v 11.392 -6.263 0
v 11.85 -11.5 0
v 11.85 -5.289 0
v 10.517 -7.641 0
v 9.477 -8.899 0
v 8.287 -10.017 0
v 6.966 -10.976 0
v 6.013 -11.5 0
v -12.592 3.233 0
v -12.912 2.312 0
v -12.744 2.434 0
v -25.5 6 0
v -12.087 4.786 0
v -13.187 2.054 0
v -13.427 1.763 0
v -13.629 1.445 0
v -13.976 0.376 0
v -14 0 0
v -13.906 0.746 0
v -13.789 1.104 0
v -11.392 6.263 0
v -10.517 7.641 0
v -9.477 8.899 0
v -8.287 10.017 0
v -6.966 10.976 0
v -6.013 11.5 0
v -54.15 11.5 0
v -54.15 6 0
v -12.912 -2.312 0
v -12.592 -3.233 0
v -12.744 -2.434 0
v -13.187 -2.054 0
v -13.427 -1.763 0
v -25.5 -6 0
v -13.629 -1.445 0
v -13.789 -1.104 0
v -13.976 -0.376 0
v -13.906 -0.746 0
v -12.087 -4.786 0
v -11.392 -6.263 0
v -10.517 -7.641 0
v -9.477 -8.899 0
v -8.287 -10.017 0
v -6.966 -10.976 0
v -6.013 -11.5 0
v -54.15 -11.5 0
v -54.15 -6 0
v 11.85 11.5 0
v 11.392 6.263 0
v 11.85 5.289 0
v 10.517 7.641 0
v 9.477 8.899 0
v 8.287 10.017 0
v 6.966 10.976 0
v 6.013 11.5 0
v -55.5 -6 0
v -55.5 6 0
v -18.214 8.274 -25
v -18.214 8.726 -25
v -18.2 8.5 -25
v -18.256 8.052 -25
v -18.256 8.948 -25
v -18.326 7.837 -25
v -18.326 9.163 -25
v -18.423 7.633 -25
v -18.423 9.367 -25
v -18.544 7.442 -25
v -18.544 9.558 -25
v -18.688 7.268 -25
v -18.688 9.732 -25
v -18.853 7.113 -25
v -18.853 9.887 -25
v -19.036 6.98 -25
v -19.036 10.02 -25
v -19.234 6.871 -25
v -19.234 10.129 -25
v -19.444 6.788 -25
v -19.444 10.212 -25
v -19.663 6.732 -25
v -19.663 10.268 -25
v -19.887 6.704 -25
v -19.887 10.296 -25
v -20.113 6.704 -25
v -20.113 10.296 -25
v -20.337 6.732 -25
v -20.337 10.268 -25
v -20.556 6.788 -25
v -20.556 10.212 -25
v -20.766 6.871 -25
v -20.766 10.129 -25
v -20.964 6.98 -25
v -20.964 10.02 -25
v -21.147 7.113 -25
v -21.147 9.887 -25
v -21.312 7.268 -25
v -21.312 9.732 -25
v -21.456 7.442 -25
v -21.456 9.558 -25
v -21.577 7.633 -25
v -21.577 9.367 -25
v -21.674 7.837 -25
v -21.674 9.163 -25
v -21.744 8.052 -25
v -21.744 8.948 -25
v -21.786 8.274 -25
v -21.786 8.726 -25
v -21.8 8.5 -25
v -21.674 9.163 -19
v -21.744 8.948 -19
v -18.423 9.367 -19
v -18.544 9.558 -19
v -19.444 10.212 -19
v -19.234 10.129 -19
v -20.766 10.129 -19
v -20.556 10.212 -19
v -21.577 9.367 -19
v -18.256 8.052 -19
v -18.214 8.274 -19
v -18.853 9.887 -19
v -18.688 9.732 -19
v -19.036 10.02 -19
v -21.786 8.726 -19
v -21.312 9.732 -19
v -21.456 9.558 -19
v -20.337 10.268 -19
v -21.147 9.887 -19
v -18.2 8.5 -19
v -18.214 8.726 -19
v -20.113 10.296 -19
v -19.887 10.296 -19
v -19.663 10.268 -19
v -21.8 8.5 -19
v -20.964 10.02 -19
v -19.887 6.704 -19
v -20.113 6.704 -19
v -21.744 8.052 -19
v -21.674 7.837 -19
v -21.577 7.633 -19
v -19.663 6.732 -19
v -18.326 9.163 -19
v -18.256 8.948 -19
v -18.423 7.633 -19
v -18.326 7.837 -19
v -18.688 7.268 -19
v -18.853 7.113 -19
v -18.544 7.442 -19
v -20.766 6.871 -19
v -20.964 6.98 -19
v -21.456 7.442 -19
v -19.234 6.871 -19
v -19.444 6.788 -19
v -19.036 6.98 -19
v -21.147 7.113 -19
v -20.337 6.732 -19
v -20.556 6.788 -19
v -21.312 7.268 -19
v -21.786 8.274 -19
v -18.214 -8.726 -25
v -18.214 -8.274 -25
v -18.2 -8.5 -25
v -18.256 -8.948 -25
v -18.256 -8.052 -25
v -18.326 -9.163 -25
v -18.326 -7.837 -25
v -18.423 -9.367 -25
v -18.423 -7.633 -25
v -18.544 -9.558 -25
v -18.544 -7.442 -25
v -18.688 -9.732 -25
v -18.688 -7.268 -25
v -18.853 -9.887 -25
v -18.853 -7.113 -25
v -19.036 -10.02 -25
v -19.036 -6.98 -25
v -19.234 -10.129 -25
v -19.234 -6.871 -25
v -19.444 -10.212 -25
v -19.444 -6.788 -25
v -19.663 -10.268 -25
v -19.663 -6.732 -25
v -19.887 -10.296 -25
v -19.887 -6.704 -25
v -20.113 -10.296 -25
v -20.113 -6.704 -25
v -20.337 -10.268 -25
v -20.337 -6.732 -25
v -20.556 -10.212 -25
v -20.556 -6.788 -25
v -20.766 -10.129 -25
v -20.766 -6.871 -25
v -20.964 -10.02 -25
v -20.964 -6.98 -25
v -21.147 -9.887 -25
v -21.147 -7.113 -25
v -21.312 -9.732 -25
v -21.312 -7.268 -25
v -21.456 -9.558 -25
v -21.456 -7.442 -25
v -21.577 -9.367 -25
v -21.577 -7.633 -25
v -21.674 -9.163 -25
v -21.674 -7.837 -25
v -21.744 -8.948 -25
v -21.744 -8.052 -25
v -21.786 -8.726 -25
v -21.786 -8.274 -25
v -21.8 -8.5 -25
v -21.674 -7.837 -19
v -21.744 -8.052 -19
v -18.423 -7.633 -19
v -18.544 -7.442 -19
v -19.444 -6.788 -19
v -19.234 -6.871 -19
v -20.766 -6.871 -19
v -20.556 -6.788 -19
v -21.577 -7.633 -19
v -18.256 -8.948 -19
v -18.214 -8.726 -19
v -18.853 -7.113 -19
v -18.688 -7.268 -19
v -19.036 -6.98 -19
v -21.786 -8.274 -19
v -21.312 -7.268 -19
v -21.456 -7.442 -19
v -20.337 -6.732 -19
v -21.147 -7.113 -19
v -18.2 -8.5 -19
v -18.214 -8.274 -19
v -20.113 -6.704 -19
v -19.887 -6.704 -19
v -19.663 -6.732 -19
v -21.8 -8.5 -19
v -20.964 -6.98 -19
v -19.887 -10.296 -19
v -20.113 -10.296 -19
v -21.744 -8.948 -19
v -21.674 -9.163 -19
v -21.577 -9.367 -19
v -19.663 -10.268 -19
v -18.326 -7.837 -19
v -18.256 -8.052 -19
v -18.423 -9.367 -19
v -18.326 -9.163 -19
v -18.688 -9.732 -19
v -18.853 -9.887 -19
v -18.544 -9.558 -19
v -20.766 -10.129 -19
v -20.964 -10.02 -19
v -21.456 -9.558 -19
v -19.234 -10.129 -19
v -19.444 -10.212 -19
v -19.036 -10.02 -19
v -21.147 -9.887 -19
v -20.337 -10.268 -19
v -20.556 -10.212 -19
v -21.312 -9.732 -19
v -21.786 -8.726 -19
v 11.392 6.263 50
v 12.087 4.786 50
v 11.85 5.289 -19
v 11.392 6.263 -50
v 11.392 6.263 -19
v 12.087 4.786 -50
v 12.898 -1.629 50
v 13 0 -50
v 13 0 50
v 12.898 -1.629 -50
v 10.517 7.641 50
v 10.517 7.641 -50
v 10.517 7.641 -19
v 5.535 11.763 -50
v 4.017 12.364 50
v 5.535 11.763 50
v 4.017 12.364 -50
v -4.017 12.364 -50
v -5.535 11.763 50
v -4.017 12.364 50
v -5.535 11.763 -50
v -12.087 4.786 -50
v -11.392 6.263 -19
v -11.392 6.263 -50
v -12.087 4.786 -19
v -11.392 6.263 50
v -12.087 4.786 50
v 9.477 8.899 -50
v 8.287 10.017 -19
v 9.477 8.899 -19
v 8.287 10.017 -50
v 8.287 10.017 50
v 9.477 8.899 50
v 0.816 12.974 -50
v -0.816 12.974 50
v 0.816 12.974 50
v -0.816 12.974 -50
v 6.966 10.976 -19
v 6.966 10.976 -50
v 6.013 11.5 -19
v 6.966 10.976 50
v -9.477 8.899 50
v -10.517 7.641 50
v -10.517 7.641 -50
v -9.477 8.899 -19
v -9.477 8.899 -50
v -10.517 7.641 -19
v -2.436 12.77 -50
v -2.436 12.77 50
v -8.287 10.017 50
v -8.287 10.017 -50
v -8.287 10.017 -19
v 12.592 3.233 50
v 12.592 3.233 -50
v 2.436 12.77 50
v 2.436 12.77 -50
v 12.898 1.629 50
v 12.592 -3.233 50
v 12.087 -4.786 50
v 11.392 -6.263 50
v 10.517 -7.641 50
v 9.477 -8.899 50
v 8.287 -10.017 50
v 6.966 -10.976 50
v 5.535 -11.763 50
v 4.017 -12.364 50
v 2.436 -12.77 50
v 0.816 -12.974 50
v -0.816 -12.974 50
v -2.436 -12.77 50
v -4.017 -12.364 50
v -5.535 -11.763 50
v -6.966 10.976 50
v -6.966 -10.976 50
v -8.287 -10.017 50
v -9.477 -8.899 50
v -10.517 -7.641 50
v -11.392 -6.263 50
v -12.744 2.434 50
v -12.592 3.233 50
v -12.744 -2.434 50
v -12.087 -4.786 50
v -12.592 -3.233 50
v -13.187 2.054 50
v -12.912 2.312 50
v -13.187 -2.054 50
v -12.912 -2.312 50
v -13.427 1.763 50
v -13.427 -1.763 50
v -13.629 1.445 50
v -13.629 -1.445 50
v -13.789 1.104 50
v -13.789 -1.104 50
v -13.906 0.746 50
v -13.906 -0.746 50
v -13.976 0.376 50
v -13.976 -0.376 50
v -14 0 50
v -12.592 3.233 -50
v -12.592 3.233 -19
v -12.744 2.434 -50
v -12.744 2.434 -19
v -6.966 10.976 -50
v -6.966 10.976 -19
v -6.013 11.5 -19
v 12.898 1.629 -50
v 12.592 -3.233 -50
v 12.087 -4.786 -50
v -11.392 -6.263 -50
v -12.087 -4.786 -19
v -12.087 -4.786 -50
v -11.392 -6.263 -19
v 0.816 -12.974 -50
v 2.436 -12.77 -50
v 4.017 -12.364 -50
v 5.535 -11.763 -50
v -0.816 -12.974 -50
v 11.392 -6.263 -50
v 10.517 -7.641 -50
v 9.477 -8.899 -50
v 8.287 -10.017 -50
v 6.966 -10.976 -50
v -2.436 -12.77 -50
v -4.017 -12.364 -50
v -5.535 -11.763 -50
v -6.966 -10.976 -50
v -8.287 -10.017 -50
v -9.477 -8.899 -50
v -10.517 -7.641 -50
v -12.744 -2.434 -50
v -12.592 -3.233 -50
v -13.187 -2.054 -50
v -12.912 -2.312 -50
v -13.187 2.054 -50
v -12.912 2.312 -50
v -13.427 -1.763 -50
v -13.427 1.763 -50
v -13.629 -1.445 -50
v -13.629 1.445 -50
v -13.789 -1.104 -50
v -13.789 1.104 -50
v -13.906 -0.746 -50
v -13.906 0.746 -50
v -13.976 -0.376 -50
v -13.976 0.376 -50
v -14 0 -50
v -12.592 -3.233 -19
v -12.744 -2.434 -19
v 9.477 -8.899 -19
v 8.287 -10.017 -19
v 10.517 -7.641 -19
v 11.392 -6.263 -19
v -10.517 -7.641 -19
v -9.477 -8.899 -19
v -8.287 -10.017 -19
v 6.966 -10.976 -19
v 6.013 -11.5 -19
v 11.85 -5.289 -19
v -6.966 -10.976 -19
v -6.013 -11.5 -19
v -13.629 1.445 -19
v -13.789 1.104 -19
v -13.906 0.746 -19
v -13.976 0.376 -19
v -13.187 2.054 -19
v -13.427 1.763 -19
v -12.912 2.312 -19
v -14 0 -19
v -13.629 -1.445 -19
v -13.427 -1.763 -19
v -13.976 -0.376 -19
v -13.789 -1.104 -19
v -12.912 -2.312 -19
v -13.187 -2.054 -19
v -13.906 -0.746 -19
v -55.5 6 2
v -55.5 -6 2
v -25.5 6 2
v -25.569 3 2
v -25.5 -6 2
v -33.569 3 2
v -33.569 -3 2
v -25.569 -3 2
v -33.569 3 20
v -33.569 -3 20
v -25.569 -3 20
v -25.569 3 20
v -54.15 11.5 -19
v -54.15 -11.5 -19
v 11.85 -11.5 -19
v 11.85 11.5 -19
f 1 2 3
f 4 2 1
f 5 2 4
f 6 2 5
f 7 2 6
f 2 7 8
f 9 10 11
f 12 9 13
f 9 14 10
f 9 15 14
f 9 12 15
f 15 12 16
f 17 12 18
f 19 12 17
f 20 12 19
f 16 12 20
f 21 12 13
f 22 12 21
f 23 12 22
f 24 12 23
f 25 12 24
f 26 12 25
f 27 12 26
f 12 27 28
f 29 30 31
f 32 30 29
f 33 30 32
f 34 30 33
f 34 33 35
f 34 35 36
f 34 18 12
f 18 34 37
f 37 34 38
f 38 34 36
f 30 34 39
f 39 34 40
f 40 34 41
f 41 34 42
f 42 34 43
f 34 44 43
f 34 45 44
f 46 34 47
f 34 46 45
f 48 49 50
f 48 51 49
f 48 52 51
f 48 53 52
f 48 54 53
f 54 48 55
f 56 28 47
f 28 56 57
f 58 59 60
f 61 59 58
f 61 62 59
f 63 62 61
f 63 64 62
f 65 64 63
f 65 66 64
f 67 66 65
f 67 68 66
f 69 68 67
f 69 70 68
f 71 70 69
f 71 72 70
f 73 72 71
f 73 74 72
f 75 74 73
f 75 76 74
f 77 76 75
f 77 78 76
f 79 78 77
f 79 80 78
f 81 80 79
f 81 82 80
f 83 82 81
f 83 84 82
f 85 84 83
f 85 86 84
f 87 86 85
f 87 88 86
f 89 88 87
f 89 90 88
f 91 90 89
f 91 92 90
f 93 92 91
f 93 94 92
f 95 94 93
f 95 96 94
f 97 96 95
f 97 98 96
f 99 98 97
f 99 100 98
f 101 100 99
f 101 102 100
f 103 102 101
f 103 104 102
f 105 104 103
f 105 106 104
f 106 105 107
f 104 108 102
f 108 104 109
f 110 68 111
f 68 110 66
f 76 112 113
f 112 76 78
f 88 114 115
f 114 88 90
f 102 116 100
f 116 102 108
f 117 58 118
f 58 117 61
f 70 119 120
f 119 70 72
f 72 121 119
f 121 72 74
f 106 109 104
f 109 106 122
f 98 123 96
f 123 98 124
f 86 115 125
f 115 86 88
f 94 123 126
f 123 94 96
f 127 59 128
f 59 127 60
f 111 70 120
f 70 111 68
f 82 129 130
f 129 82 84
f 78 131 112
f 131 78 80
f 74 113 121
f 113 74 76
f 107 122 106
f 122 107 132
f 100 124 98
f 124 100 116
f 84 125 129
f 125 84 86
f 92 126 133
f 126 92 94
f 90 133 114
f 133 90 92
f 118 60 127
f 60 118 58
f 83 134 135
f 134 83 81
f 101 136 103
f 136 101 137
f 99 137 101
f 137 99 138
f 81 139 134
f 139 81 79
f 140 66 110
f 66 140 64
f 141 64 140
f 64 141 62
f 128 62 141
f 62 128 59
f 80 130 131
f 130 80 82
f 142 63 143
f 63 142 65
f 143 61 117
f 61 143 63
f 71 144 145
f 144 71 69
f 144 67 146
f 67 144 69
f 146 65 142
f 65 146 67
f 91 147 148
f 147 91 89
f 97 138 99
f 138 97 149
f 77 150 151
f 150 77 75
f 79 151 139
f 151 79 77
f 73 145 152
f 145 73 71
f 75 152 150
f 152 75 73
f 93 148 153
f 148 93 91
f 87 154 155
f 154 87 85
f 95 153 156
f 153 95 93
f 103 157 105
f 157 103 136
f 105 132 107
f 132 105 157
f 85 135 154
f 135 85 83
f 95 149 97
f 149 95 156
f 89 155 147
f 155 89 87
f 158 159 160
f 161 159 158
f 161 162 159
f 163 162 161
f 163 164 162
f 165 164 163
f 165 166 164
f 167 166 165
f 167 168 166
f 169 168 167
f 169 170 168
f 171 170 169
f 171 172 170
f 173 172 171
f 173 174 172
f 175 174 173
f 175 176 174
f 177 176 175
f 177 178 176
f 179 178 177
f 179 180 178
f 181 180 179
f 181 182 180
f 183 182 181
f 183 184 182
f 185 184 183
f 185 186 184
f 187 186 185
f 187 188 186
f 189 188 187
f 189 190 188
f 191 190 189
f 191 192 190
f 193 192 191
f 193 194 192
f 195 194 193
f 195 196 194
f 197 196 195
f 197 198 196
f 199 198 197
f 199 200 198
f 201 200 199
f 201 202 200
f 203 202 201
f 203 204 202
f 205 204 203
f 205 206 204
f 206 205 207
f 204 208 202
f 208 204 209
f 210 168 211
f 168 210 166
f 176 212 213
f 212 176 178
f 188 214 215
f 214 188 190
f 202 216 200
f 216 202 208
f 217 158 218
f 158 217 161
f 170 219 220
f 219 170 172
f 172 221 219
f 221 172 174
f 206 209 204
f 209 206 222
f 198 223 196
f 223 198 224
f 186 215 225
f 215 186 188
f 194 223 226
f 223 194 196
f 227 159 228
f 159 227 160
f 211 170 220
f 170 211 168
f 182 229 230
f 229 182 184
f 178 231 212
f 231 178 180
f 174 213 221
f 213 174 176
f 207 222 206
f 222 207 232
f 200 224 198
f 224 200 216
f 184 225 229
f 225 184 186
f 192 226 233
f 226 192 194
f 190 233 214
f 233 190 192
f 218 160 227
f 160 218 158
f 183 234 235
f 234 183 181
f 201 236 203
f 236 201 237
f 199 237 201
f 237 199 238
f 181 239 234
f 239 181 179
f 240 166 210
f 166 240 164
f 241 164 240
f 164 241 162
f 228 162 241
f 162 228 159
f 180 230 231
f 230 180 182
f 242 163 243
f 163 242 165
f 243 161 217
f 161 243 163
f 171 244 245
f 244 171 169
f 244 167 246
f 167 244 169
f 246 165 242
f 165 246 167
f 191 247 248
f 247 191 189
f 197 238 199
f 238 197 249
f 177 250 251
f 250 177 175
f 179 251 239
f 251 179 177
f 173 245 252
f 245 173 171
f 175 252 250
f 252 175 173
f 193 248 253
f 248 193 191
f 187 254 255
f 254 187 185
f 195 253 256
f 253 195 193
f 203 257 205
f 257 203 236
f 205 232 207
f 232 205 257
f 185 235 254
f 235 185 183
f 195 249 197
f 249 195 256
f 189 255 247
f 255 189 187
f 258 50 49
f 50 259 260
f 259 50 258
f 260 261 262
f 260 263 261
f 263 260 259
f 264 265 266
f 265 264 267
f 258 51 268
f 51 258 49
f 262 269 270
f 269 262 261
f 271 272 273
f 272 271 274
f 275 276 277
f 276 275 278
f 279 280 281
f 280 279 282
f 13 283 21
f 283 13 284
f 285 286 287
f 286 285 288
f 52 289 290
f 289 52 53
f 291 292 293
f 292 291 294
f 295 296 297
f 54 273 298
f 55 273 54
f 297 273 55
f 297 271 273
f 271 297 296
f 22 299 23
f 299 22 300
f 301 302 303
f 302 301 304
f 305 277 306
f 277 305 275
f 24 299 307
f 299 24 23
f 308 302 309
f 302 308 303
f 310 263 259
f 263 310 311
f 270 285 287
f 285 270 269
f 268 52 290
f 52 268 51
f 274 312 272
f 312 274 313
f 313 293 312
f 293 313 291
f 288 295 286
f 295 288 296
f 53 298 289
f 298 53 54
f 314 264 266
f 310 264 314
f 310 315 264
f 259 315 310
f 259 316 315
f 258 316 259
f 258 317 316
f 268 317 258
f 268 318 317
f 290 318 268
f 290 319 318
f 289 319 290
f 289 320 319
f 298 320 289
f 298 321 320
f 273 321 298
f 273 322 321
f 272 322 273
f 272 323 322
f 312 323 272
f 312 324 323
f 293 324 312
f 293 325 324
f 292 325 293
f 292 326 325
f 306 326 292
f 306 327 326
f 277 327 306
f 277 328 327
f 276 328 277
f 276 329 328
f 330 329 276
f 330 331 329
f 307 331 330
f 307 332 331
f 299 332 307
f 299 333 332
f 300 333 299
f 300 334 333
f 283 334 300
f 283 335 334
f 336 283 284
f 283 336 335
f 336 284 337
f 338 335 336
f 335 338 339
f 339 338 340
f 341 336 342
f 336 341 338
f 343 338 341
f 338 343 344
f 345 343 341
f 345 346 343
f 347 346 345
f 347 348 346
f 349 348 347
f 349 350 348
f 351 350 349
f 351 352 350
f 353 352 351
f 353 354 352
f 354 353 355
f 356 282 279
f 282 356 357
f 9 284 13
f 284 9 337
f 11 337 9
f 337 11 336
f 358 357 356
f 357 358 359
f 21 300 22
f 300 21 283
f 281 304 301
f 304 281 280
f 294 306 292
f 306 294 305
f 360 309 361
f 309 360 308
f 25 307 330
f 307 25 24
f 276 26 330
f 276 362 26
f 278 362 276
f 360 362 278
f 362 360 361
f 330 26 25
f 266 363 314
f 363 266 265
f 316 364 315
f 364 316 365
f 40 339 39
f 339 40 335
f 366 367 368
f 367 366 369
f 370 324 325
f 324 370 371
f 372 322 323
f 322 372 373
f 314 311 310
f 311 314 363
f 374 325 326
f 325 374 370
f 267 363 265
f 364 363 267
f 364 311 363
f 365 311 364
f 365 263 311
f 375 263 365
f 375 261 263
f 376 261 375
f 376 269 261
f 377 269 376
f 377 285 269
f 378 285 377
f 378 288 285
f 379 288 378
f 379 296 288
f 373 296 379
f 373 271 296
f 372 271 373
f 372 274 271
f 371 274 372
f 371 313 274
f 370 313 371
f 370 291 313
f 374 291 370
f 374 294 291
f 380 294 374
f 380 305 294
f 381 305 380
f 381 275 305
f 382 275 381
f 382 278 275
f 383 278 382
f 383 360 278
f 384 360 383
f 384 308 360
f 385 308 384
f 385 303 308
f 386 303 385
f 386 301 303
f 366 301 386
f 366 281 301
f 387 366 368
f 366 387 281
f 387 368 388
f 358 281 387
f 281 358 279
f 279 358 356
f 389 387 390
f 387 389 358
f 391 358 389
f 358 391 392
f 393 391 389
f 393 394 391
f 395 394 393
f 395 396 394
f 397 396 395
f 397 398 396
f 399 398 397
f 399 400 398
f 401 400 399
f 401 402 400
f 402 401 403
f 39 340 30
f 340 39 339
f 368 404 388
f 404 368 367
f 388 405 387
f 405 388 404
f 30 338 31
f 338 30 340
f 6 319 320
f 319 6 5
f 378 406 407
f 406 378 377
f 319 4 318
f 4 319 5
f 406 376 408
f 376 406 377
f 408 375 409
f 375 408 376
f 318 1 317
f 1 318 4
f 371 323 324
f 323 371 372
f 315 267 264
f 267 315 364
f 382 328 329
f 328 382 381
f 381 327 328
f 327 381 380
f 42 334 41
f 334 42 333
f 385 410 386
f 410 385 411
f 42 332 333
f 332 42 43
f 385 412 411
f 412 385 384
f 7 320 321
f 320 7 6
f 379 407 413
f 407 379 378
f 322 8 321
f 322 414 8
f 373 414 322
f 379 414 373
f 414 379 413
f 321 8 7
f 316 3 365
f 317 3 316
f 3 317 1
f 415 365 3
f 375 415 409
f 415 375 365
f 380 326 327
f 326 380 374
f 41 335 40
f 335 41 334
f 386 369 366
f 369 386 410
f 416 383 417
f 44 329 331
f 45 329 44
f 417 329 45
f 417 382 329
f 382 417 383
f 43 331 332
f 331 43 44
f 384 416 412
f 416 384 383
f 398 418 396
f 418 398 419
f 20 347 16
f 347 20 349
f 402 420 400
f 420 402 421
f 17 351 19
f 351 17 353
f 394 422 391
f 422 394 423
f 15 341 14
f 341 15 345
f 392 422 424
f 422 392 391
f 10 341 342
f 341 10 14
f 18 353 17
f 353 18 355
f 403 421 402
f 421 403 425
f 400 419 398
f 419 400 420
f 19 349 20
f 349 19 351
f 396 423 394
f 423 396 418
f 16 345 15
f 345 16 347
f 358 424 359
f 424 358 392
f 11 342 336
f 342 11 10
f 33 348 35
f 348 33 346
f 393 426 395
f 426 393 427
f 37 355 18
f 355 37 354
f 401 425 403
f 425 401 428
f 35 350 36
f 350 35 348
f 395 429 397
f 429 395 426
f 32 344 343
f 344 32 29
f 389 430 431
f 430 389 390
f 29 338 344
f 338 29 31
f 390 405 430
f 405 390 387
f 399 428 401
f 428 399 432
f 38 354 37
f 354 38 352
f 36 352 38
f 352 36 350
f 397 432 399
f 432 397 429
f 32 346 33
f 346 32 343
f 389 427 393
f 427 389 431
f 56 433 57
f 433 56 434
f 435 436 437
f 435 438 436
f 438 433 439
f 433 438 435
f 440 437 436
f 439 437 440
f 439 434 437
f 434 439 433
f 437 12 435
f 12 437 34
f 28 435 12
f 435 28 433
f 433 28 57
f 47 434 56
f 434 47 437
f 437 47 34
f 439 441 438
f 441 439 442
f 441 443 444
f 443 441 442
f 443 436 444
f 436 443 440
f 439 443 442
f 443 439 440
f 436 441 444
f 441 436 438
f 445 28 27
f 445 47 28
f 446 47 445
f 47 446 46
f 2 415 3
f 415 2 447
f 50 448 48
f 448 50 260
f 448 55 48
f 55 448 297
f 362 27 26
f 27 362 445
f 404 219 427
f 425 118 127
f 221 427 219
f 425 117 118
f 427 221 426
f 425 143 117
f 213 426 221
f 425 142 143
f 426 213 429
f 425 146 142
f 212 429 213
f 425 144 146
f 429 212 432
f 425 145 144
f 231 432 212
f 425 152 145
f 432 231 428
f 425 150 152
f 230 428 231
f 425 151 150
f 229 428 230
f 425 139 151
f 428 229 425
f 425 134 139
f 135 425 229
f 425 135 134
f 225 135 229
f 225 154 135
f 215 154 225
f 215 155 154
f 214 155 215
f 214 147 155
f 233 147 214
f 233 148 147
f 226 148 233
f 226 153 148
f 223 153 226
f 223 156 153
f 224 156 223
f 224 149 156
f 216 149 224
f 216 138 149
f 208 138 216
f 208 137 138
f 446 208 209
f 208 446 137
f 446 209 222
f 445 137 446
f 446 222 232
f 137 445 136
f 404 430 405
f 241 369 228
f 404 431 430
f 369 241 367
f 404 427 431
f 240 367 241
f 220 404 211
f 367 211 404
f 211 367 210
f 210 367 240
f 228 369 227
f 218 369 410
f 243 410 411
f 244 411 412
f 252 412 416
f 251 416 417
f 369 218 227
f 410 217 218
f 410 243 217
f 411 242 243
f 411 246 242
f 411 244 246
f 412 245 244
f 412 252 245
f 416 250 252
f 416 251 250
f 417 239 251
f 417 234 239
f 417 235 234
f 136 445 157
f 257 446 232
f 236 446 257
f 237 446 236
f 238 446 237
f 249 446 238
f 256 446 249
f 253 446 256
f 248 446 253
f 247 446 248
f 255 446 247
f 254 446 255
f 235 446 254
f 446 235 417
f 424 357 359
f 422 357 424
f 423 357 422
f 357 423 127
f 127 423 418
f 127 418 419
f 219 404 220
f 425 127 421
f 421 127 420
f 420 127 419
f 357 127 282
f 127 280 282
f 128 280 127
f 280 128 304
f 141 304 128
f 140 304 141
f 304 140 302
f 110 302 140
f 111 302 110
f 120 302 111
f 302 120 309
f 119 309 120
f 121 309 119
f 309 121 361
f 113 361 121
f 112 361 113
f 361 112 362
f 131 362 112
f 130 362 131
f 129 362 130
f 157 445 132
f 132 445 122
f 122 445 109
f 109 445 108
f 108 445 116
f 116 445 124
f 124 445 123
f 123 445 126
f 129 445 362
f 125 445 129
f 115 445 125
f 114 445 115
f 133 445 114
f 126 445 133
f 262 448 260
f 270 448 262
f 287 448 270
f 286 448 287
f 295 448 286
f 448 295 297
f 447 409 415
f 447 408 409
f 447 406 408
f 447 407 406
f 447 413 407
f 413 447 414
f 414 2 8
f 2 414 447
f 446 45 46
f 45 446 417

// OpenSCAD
$fn = 50;


difference() {
	union() {
		translate(v = [-20, 8.5000000000, 0]) {
			rotate(a = [0, 0, 0]) {
				difference() {
					union() {
						translate(v = [0, 0, -25.0000000000]) {
							cylinder(h = 25, r = 1.5000000000);
						}
						translate(v = [0, 0, -25.0000000000]) {
							cylinder(h = 25, r = 1.8000000000);
						}
						translate(v = [0, 0, -1.7000000000]) {
							cylinder(h = 1.7000000000, r1 = 1.5000000000, r2 = 2.9000000000);
						}
						translate(v = [0, 0, -25.0000000000]) {
							cylinder(h = 25, r = 1.5000000000);
						}
					}
					union();
				}
			}
		}
		translate(v = [-20, -8.5000000000, 0]) {
			rotate(a = [0, 0, 0]) {
				difference() {
					union() {
						translate(v = [0, 0, -25.0000000000]) {
							cylinder(h = 25, r = 1.5000000000);
						}
						translate(v = [0, 0, -25.0000000000]) {
							cylinder(h = 25, r = 1.8000000000);
						}
						translate(v = [0, 0, -1.7000000000]) {
							cylinder(h = 1.7000000000, r1 = 1.5000000000, r2 = 2.9000000000);
						}
						translate(v = [0, 0, -25.0000000000]) {
							cylinder(h = 25, r = 1.5000000000);
						}
					}
					union();
				}
			}
		}
		translate(v = [0, 0, -50.0000000000]) {
			cylinder(h = 100, r = 13.0000000000);
		}
		translate(v = [-11, 0, -50.0000000000]) {
			cylinder(h = 100, r = 3.0000000000);
		}
		translate(v = [-55.5000000000, -6.0000000000, 0]) {
			cube(size = [30, 12, 2]);
		}
		translate(v = [-54.0000000000, -4.0000000000, 0]) {
			cube(size = [18, 8, 2]);
		}
		translate(v = [-33.5690000000, -3.0000000000, 0]) {
			cube(size = [8, 6, 20]);
		}
		translate(v = [-54.1500000000, -11.5000000000, -19]) {
			cube(size = [66, 23, 19]);
		}
	}
	union();
}
